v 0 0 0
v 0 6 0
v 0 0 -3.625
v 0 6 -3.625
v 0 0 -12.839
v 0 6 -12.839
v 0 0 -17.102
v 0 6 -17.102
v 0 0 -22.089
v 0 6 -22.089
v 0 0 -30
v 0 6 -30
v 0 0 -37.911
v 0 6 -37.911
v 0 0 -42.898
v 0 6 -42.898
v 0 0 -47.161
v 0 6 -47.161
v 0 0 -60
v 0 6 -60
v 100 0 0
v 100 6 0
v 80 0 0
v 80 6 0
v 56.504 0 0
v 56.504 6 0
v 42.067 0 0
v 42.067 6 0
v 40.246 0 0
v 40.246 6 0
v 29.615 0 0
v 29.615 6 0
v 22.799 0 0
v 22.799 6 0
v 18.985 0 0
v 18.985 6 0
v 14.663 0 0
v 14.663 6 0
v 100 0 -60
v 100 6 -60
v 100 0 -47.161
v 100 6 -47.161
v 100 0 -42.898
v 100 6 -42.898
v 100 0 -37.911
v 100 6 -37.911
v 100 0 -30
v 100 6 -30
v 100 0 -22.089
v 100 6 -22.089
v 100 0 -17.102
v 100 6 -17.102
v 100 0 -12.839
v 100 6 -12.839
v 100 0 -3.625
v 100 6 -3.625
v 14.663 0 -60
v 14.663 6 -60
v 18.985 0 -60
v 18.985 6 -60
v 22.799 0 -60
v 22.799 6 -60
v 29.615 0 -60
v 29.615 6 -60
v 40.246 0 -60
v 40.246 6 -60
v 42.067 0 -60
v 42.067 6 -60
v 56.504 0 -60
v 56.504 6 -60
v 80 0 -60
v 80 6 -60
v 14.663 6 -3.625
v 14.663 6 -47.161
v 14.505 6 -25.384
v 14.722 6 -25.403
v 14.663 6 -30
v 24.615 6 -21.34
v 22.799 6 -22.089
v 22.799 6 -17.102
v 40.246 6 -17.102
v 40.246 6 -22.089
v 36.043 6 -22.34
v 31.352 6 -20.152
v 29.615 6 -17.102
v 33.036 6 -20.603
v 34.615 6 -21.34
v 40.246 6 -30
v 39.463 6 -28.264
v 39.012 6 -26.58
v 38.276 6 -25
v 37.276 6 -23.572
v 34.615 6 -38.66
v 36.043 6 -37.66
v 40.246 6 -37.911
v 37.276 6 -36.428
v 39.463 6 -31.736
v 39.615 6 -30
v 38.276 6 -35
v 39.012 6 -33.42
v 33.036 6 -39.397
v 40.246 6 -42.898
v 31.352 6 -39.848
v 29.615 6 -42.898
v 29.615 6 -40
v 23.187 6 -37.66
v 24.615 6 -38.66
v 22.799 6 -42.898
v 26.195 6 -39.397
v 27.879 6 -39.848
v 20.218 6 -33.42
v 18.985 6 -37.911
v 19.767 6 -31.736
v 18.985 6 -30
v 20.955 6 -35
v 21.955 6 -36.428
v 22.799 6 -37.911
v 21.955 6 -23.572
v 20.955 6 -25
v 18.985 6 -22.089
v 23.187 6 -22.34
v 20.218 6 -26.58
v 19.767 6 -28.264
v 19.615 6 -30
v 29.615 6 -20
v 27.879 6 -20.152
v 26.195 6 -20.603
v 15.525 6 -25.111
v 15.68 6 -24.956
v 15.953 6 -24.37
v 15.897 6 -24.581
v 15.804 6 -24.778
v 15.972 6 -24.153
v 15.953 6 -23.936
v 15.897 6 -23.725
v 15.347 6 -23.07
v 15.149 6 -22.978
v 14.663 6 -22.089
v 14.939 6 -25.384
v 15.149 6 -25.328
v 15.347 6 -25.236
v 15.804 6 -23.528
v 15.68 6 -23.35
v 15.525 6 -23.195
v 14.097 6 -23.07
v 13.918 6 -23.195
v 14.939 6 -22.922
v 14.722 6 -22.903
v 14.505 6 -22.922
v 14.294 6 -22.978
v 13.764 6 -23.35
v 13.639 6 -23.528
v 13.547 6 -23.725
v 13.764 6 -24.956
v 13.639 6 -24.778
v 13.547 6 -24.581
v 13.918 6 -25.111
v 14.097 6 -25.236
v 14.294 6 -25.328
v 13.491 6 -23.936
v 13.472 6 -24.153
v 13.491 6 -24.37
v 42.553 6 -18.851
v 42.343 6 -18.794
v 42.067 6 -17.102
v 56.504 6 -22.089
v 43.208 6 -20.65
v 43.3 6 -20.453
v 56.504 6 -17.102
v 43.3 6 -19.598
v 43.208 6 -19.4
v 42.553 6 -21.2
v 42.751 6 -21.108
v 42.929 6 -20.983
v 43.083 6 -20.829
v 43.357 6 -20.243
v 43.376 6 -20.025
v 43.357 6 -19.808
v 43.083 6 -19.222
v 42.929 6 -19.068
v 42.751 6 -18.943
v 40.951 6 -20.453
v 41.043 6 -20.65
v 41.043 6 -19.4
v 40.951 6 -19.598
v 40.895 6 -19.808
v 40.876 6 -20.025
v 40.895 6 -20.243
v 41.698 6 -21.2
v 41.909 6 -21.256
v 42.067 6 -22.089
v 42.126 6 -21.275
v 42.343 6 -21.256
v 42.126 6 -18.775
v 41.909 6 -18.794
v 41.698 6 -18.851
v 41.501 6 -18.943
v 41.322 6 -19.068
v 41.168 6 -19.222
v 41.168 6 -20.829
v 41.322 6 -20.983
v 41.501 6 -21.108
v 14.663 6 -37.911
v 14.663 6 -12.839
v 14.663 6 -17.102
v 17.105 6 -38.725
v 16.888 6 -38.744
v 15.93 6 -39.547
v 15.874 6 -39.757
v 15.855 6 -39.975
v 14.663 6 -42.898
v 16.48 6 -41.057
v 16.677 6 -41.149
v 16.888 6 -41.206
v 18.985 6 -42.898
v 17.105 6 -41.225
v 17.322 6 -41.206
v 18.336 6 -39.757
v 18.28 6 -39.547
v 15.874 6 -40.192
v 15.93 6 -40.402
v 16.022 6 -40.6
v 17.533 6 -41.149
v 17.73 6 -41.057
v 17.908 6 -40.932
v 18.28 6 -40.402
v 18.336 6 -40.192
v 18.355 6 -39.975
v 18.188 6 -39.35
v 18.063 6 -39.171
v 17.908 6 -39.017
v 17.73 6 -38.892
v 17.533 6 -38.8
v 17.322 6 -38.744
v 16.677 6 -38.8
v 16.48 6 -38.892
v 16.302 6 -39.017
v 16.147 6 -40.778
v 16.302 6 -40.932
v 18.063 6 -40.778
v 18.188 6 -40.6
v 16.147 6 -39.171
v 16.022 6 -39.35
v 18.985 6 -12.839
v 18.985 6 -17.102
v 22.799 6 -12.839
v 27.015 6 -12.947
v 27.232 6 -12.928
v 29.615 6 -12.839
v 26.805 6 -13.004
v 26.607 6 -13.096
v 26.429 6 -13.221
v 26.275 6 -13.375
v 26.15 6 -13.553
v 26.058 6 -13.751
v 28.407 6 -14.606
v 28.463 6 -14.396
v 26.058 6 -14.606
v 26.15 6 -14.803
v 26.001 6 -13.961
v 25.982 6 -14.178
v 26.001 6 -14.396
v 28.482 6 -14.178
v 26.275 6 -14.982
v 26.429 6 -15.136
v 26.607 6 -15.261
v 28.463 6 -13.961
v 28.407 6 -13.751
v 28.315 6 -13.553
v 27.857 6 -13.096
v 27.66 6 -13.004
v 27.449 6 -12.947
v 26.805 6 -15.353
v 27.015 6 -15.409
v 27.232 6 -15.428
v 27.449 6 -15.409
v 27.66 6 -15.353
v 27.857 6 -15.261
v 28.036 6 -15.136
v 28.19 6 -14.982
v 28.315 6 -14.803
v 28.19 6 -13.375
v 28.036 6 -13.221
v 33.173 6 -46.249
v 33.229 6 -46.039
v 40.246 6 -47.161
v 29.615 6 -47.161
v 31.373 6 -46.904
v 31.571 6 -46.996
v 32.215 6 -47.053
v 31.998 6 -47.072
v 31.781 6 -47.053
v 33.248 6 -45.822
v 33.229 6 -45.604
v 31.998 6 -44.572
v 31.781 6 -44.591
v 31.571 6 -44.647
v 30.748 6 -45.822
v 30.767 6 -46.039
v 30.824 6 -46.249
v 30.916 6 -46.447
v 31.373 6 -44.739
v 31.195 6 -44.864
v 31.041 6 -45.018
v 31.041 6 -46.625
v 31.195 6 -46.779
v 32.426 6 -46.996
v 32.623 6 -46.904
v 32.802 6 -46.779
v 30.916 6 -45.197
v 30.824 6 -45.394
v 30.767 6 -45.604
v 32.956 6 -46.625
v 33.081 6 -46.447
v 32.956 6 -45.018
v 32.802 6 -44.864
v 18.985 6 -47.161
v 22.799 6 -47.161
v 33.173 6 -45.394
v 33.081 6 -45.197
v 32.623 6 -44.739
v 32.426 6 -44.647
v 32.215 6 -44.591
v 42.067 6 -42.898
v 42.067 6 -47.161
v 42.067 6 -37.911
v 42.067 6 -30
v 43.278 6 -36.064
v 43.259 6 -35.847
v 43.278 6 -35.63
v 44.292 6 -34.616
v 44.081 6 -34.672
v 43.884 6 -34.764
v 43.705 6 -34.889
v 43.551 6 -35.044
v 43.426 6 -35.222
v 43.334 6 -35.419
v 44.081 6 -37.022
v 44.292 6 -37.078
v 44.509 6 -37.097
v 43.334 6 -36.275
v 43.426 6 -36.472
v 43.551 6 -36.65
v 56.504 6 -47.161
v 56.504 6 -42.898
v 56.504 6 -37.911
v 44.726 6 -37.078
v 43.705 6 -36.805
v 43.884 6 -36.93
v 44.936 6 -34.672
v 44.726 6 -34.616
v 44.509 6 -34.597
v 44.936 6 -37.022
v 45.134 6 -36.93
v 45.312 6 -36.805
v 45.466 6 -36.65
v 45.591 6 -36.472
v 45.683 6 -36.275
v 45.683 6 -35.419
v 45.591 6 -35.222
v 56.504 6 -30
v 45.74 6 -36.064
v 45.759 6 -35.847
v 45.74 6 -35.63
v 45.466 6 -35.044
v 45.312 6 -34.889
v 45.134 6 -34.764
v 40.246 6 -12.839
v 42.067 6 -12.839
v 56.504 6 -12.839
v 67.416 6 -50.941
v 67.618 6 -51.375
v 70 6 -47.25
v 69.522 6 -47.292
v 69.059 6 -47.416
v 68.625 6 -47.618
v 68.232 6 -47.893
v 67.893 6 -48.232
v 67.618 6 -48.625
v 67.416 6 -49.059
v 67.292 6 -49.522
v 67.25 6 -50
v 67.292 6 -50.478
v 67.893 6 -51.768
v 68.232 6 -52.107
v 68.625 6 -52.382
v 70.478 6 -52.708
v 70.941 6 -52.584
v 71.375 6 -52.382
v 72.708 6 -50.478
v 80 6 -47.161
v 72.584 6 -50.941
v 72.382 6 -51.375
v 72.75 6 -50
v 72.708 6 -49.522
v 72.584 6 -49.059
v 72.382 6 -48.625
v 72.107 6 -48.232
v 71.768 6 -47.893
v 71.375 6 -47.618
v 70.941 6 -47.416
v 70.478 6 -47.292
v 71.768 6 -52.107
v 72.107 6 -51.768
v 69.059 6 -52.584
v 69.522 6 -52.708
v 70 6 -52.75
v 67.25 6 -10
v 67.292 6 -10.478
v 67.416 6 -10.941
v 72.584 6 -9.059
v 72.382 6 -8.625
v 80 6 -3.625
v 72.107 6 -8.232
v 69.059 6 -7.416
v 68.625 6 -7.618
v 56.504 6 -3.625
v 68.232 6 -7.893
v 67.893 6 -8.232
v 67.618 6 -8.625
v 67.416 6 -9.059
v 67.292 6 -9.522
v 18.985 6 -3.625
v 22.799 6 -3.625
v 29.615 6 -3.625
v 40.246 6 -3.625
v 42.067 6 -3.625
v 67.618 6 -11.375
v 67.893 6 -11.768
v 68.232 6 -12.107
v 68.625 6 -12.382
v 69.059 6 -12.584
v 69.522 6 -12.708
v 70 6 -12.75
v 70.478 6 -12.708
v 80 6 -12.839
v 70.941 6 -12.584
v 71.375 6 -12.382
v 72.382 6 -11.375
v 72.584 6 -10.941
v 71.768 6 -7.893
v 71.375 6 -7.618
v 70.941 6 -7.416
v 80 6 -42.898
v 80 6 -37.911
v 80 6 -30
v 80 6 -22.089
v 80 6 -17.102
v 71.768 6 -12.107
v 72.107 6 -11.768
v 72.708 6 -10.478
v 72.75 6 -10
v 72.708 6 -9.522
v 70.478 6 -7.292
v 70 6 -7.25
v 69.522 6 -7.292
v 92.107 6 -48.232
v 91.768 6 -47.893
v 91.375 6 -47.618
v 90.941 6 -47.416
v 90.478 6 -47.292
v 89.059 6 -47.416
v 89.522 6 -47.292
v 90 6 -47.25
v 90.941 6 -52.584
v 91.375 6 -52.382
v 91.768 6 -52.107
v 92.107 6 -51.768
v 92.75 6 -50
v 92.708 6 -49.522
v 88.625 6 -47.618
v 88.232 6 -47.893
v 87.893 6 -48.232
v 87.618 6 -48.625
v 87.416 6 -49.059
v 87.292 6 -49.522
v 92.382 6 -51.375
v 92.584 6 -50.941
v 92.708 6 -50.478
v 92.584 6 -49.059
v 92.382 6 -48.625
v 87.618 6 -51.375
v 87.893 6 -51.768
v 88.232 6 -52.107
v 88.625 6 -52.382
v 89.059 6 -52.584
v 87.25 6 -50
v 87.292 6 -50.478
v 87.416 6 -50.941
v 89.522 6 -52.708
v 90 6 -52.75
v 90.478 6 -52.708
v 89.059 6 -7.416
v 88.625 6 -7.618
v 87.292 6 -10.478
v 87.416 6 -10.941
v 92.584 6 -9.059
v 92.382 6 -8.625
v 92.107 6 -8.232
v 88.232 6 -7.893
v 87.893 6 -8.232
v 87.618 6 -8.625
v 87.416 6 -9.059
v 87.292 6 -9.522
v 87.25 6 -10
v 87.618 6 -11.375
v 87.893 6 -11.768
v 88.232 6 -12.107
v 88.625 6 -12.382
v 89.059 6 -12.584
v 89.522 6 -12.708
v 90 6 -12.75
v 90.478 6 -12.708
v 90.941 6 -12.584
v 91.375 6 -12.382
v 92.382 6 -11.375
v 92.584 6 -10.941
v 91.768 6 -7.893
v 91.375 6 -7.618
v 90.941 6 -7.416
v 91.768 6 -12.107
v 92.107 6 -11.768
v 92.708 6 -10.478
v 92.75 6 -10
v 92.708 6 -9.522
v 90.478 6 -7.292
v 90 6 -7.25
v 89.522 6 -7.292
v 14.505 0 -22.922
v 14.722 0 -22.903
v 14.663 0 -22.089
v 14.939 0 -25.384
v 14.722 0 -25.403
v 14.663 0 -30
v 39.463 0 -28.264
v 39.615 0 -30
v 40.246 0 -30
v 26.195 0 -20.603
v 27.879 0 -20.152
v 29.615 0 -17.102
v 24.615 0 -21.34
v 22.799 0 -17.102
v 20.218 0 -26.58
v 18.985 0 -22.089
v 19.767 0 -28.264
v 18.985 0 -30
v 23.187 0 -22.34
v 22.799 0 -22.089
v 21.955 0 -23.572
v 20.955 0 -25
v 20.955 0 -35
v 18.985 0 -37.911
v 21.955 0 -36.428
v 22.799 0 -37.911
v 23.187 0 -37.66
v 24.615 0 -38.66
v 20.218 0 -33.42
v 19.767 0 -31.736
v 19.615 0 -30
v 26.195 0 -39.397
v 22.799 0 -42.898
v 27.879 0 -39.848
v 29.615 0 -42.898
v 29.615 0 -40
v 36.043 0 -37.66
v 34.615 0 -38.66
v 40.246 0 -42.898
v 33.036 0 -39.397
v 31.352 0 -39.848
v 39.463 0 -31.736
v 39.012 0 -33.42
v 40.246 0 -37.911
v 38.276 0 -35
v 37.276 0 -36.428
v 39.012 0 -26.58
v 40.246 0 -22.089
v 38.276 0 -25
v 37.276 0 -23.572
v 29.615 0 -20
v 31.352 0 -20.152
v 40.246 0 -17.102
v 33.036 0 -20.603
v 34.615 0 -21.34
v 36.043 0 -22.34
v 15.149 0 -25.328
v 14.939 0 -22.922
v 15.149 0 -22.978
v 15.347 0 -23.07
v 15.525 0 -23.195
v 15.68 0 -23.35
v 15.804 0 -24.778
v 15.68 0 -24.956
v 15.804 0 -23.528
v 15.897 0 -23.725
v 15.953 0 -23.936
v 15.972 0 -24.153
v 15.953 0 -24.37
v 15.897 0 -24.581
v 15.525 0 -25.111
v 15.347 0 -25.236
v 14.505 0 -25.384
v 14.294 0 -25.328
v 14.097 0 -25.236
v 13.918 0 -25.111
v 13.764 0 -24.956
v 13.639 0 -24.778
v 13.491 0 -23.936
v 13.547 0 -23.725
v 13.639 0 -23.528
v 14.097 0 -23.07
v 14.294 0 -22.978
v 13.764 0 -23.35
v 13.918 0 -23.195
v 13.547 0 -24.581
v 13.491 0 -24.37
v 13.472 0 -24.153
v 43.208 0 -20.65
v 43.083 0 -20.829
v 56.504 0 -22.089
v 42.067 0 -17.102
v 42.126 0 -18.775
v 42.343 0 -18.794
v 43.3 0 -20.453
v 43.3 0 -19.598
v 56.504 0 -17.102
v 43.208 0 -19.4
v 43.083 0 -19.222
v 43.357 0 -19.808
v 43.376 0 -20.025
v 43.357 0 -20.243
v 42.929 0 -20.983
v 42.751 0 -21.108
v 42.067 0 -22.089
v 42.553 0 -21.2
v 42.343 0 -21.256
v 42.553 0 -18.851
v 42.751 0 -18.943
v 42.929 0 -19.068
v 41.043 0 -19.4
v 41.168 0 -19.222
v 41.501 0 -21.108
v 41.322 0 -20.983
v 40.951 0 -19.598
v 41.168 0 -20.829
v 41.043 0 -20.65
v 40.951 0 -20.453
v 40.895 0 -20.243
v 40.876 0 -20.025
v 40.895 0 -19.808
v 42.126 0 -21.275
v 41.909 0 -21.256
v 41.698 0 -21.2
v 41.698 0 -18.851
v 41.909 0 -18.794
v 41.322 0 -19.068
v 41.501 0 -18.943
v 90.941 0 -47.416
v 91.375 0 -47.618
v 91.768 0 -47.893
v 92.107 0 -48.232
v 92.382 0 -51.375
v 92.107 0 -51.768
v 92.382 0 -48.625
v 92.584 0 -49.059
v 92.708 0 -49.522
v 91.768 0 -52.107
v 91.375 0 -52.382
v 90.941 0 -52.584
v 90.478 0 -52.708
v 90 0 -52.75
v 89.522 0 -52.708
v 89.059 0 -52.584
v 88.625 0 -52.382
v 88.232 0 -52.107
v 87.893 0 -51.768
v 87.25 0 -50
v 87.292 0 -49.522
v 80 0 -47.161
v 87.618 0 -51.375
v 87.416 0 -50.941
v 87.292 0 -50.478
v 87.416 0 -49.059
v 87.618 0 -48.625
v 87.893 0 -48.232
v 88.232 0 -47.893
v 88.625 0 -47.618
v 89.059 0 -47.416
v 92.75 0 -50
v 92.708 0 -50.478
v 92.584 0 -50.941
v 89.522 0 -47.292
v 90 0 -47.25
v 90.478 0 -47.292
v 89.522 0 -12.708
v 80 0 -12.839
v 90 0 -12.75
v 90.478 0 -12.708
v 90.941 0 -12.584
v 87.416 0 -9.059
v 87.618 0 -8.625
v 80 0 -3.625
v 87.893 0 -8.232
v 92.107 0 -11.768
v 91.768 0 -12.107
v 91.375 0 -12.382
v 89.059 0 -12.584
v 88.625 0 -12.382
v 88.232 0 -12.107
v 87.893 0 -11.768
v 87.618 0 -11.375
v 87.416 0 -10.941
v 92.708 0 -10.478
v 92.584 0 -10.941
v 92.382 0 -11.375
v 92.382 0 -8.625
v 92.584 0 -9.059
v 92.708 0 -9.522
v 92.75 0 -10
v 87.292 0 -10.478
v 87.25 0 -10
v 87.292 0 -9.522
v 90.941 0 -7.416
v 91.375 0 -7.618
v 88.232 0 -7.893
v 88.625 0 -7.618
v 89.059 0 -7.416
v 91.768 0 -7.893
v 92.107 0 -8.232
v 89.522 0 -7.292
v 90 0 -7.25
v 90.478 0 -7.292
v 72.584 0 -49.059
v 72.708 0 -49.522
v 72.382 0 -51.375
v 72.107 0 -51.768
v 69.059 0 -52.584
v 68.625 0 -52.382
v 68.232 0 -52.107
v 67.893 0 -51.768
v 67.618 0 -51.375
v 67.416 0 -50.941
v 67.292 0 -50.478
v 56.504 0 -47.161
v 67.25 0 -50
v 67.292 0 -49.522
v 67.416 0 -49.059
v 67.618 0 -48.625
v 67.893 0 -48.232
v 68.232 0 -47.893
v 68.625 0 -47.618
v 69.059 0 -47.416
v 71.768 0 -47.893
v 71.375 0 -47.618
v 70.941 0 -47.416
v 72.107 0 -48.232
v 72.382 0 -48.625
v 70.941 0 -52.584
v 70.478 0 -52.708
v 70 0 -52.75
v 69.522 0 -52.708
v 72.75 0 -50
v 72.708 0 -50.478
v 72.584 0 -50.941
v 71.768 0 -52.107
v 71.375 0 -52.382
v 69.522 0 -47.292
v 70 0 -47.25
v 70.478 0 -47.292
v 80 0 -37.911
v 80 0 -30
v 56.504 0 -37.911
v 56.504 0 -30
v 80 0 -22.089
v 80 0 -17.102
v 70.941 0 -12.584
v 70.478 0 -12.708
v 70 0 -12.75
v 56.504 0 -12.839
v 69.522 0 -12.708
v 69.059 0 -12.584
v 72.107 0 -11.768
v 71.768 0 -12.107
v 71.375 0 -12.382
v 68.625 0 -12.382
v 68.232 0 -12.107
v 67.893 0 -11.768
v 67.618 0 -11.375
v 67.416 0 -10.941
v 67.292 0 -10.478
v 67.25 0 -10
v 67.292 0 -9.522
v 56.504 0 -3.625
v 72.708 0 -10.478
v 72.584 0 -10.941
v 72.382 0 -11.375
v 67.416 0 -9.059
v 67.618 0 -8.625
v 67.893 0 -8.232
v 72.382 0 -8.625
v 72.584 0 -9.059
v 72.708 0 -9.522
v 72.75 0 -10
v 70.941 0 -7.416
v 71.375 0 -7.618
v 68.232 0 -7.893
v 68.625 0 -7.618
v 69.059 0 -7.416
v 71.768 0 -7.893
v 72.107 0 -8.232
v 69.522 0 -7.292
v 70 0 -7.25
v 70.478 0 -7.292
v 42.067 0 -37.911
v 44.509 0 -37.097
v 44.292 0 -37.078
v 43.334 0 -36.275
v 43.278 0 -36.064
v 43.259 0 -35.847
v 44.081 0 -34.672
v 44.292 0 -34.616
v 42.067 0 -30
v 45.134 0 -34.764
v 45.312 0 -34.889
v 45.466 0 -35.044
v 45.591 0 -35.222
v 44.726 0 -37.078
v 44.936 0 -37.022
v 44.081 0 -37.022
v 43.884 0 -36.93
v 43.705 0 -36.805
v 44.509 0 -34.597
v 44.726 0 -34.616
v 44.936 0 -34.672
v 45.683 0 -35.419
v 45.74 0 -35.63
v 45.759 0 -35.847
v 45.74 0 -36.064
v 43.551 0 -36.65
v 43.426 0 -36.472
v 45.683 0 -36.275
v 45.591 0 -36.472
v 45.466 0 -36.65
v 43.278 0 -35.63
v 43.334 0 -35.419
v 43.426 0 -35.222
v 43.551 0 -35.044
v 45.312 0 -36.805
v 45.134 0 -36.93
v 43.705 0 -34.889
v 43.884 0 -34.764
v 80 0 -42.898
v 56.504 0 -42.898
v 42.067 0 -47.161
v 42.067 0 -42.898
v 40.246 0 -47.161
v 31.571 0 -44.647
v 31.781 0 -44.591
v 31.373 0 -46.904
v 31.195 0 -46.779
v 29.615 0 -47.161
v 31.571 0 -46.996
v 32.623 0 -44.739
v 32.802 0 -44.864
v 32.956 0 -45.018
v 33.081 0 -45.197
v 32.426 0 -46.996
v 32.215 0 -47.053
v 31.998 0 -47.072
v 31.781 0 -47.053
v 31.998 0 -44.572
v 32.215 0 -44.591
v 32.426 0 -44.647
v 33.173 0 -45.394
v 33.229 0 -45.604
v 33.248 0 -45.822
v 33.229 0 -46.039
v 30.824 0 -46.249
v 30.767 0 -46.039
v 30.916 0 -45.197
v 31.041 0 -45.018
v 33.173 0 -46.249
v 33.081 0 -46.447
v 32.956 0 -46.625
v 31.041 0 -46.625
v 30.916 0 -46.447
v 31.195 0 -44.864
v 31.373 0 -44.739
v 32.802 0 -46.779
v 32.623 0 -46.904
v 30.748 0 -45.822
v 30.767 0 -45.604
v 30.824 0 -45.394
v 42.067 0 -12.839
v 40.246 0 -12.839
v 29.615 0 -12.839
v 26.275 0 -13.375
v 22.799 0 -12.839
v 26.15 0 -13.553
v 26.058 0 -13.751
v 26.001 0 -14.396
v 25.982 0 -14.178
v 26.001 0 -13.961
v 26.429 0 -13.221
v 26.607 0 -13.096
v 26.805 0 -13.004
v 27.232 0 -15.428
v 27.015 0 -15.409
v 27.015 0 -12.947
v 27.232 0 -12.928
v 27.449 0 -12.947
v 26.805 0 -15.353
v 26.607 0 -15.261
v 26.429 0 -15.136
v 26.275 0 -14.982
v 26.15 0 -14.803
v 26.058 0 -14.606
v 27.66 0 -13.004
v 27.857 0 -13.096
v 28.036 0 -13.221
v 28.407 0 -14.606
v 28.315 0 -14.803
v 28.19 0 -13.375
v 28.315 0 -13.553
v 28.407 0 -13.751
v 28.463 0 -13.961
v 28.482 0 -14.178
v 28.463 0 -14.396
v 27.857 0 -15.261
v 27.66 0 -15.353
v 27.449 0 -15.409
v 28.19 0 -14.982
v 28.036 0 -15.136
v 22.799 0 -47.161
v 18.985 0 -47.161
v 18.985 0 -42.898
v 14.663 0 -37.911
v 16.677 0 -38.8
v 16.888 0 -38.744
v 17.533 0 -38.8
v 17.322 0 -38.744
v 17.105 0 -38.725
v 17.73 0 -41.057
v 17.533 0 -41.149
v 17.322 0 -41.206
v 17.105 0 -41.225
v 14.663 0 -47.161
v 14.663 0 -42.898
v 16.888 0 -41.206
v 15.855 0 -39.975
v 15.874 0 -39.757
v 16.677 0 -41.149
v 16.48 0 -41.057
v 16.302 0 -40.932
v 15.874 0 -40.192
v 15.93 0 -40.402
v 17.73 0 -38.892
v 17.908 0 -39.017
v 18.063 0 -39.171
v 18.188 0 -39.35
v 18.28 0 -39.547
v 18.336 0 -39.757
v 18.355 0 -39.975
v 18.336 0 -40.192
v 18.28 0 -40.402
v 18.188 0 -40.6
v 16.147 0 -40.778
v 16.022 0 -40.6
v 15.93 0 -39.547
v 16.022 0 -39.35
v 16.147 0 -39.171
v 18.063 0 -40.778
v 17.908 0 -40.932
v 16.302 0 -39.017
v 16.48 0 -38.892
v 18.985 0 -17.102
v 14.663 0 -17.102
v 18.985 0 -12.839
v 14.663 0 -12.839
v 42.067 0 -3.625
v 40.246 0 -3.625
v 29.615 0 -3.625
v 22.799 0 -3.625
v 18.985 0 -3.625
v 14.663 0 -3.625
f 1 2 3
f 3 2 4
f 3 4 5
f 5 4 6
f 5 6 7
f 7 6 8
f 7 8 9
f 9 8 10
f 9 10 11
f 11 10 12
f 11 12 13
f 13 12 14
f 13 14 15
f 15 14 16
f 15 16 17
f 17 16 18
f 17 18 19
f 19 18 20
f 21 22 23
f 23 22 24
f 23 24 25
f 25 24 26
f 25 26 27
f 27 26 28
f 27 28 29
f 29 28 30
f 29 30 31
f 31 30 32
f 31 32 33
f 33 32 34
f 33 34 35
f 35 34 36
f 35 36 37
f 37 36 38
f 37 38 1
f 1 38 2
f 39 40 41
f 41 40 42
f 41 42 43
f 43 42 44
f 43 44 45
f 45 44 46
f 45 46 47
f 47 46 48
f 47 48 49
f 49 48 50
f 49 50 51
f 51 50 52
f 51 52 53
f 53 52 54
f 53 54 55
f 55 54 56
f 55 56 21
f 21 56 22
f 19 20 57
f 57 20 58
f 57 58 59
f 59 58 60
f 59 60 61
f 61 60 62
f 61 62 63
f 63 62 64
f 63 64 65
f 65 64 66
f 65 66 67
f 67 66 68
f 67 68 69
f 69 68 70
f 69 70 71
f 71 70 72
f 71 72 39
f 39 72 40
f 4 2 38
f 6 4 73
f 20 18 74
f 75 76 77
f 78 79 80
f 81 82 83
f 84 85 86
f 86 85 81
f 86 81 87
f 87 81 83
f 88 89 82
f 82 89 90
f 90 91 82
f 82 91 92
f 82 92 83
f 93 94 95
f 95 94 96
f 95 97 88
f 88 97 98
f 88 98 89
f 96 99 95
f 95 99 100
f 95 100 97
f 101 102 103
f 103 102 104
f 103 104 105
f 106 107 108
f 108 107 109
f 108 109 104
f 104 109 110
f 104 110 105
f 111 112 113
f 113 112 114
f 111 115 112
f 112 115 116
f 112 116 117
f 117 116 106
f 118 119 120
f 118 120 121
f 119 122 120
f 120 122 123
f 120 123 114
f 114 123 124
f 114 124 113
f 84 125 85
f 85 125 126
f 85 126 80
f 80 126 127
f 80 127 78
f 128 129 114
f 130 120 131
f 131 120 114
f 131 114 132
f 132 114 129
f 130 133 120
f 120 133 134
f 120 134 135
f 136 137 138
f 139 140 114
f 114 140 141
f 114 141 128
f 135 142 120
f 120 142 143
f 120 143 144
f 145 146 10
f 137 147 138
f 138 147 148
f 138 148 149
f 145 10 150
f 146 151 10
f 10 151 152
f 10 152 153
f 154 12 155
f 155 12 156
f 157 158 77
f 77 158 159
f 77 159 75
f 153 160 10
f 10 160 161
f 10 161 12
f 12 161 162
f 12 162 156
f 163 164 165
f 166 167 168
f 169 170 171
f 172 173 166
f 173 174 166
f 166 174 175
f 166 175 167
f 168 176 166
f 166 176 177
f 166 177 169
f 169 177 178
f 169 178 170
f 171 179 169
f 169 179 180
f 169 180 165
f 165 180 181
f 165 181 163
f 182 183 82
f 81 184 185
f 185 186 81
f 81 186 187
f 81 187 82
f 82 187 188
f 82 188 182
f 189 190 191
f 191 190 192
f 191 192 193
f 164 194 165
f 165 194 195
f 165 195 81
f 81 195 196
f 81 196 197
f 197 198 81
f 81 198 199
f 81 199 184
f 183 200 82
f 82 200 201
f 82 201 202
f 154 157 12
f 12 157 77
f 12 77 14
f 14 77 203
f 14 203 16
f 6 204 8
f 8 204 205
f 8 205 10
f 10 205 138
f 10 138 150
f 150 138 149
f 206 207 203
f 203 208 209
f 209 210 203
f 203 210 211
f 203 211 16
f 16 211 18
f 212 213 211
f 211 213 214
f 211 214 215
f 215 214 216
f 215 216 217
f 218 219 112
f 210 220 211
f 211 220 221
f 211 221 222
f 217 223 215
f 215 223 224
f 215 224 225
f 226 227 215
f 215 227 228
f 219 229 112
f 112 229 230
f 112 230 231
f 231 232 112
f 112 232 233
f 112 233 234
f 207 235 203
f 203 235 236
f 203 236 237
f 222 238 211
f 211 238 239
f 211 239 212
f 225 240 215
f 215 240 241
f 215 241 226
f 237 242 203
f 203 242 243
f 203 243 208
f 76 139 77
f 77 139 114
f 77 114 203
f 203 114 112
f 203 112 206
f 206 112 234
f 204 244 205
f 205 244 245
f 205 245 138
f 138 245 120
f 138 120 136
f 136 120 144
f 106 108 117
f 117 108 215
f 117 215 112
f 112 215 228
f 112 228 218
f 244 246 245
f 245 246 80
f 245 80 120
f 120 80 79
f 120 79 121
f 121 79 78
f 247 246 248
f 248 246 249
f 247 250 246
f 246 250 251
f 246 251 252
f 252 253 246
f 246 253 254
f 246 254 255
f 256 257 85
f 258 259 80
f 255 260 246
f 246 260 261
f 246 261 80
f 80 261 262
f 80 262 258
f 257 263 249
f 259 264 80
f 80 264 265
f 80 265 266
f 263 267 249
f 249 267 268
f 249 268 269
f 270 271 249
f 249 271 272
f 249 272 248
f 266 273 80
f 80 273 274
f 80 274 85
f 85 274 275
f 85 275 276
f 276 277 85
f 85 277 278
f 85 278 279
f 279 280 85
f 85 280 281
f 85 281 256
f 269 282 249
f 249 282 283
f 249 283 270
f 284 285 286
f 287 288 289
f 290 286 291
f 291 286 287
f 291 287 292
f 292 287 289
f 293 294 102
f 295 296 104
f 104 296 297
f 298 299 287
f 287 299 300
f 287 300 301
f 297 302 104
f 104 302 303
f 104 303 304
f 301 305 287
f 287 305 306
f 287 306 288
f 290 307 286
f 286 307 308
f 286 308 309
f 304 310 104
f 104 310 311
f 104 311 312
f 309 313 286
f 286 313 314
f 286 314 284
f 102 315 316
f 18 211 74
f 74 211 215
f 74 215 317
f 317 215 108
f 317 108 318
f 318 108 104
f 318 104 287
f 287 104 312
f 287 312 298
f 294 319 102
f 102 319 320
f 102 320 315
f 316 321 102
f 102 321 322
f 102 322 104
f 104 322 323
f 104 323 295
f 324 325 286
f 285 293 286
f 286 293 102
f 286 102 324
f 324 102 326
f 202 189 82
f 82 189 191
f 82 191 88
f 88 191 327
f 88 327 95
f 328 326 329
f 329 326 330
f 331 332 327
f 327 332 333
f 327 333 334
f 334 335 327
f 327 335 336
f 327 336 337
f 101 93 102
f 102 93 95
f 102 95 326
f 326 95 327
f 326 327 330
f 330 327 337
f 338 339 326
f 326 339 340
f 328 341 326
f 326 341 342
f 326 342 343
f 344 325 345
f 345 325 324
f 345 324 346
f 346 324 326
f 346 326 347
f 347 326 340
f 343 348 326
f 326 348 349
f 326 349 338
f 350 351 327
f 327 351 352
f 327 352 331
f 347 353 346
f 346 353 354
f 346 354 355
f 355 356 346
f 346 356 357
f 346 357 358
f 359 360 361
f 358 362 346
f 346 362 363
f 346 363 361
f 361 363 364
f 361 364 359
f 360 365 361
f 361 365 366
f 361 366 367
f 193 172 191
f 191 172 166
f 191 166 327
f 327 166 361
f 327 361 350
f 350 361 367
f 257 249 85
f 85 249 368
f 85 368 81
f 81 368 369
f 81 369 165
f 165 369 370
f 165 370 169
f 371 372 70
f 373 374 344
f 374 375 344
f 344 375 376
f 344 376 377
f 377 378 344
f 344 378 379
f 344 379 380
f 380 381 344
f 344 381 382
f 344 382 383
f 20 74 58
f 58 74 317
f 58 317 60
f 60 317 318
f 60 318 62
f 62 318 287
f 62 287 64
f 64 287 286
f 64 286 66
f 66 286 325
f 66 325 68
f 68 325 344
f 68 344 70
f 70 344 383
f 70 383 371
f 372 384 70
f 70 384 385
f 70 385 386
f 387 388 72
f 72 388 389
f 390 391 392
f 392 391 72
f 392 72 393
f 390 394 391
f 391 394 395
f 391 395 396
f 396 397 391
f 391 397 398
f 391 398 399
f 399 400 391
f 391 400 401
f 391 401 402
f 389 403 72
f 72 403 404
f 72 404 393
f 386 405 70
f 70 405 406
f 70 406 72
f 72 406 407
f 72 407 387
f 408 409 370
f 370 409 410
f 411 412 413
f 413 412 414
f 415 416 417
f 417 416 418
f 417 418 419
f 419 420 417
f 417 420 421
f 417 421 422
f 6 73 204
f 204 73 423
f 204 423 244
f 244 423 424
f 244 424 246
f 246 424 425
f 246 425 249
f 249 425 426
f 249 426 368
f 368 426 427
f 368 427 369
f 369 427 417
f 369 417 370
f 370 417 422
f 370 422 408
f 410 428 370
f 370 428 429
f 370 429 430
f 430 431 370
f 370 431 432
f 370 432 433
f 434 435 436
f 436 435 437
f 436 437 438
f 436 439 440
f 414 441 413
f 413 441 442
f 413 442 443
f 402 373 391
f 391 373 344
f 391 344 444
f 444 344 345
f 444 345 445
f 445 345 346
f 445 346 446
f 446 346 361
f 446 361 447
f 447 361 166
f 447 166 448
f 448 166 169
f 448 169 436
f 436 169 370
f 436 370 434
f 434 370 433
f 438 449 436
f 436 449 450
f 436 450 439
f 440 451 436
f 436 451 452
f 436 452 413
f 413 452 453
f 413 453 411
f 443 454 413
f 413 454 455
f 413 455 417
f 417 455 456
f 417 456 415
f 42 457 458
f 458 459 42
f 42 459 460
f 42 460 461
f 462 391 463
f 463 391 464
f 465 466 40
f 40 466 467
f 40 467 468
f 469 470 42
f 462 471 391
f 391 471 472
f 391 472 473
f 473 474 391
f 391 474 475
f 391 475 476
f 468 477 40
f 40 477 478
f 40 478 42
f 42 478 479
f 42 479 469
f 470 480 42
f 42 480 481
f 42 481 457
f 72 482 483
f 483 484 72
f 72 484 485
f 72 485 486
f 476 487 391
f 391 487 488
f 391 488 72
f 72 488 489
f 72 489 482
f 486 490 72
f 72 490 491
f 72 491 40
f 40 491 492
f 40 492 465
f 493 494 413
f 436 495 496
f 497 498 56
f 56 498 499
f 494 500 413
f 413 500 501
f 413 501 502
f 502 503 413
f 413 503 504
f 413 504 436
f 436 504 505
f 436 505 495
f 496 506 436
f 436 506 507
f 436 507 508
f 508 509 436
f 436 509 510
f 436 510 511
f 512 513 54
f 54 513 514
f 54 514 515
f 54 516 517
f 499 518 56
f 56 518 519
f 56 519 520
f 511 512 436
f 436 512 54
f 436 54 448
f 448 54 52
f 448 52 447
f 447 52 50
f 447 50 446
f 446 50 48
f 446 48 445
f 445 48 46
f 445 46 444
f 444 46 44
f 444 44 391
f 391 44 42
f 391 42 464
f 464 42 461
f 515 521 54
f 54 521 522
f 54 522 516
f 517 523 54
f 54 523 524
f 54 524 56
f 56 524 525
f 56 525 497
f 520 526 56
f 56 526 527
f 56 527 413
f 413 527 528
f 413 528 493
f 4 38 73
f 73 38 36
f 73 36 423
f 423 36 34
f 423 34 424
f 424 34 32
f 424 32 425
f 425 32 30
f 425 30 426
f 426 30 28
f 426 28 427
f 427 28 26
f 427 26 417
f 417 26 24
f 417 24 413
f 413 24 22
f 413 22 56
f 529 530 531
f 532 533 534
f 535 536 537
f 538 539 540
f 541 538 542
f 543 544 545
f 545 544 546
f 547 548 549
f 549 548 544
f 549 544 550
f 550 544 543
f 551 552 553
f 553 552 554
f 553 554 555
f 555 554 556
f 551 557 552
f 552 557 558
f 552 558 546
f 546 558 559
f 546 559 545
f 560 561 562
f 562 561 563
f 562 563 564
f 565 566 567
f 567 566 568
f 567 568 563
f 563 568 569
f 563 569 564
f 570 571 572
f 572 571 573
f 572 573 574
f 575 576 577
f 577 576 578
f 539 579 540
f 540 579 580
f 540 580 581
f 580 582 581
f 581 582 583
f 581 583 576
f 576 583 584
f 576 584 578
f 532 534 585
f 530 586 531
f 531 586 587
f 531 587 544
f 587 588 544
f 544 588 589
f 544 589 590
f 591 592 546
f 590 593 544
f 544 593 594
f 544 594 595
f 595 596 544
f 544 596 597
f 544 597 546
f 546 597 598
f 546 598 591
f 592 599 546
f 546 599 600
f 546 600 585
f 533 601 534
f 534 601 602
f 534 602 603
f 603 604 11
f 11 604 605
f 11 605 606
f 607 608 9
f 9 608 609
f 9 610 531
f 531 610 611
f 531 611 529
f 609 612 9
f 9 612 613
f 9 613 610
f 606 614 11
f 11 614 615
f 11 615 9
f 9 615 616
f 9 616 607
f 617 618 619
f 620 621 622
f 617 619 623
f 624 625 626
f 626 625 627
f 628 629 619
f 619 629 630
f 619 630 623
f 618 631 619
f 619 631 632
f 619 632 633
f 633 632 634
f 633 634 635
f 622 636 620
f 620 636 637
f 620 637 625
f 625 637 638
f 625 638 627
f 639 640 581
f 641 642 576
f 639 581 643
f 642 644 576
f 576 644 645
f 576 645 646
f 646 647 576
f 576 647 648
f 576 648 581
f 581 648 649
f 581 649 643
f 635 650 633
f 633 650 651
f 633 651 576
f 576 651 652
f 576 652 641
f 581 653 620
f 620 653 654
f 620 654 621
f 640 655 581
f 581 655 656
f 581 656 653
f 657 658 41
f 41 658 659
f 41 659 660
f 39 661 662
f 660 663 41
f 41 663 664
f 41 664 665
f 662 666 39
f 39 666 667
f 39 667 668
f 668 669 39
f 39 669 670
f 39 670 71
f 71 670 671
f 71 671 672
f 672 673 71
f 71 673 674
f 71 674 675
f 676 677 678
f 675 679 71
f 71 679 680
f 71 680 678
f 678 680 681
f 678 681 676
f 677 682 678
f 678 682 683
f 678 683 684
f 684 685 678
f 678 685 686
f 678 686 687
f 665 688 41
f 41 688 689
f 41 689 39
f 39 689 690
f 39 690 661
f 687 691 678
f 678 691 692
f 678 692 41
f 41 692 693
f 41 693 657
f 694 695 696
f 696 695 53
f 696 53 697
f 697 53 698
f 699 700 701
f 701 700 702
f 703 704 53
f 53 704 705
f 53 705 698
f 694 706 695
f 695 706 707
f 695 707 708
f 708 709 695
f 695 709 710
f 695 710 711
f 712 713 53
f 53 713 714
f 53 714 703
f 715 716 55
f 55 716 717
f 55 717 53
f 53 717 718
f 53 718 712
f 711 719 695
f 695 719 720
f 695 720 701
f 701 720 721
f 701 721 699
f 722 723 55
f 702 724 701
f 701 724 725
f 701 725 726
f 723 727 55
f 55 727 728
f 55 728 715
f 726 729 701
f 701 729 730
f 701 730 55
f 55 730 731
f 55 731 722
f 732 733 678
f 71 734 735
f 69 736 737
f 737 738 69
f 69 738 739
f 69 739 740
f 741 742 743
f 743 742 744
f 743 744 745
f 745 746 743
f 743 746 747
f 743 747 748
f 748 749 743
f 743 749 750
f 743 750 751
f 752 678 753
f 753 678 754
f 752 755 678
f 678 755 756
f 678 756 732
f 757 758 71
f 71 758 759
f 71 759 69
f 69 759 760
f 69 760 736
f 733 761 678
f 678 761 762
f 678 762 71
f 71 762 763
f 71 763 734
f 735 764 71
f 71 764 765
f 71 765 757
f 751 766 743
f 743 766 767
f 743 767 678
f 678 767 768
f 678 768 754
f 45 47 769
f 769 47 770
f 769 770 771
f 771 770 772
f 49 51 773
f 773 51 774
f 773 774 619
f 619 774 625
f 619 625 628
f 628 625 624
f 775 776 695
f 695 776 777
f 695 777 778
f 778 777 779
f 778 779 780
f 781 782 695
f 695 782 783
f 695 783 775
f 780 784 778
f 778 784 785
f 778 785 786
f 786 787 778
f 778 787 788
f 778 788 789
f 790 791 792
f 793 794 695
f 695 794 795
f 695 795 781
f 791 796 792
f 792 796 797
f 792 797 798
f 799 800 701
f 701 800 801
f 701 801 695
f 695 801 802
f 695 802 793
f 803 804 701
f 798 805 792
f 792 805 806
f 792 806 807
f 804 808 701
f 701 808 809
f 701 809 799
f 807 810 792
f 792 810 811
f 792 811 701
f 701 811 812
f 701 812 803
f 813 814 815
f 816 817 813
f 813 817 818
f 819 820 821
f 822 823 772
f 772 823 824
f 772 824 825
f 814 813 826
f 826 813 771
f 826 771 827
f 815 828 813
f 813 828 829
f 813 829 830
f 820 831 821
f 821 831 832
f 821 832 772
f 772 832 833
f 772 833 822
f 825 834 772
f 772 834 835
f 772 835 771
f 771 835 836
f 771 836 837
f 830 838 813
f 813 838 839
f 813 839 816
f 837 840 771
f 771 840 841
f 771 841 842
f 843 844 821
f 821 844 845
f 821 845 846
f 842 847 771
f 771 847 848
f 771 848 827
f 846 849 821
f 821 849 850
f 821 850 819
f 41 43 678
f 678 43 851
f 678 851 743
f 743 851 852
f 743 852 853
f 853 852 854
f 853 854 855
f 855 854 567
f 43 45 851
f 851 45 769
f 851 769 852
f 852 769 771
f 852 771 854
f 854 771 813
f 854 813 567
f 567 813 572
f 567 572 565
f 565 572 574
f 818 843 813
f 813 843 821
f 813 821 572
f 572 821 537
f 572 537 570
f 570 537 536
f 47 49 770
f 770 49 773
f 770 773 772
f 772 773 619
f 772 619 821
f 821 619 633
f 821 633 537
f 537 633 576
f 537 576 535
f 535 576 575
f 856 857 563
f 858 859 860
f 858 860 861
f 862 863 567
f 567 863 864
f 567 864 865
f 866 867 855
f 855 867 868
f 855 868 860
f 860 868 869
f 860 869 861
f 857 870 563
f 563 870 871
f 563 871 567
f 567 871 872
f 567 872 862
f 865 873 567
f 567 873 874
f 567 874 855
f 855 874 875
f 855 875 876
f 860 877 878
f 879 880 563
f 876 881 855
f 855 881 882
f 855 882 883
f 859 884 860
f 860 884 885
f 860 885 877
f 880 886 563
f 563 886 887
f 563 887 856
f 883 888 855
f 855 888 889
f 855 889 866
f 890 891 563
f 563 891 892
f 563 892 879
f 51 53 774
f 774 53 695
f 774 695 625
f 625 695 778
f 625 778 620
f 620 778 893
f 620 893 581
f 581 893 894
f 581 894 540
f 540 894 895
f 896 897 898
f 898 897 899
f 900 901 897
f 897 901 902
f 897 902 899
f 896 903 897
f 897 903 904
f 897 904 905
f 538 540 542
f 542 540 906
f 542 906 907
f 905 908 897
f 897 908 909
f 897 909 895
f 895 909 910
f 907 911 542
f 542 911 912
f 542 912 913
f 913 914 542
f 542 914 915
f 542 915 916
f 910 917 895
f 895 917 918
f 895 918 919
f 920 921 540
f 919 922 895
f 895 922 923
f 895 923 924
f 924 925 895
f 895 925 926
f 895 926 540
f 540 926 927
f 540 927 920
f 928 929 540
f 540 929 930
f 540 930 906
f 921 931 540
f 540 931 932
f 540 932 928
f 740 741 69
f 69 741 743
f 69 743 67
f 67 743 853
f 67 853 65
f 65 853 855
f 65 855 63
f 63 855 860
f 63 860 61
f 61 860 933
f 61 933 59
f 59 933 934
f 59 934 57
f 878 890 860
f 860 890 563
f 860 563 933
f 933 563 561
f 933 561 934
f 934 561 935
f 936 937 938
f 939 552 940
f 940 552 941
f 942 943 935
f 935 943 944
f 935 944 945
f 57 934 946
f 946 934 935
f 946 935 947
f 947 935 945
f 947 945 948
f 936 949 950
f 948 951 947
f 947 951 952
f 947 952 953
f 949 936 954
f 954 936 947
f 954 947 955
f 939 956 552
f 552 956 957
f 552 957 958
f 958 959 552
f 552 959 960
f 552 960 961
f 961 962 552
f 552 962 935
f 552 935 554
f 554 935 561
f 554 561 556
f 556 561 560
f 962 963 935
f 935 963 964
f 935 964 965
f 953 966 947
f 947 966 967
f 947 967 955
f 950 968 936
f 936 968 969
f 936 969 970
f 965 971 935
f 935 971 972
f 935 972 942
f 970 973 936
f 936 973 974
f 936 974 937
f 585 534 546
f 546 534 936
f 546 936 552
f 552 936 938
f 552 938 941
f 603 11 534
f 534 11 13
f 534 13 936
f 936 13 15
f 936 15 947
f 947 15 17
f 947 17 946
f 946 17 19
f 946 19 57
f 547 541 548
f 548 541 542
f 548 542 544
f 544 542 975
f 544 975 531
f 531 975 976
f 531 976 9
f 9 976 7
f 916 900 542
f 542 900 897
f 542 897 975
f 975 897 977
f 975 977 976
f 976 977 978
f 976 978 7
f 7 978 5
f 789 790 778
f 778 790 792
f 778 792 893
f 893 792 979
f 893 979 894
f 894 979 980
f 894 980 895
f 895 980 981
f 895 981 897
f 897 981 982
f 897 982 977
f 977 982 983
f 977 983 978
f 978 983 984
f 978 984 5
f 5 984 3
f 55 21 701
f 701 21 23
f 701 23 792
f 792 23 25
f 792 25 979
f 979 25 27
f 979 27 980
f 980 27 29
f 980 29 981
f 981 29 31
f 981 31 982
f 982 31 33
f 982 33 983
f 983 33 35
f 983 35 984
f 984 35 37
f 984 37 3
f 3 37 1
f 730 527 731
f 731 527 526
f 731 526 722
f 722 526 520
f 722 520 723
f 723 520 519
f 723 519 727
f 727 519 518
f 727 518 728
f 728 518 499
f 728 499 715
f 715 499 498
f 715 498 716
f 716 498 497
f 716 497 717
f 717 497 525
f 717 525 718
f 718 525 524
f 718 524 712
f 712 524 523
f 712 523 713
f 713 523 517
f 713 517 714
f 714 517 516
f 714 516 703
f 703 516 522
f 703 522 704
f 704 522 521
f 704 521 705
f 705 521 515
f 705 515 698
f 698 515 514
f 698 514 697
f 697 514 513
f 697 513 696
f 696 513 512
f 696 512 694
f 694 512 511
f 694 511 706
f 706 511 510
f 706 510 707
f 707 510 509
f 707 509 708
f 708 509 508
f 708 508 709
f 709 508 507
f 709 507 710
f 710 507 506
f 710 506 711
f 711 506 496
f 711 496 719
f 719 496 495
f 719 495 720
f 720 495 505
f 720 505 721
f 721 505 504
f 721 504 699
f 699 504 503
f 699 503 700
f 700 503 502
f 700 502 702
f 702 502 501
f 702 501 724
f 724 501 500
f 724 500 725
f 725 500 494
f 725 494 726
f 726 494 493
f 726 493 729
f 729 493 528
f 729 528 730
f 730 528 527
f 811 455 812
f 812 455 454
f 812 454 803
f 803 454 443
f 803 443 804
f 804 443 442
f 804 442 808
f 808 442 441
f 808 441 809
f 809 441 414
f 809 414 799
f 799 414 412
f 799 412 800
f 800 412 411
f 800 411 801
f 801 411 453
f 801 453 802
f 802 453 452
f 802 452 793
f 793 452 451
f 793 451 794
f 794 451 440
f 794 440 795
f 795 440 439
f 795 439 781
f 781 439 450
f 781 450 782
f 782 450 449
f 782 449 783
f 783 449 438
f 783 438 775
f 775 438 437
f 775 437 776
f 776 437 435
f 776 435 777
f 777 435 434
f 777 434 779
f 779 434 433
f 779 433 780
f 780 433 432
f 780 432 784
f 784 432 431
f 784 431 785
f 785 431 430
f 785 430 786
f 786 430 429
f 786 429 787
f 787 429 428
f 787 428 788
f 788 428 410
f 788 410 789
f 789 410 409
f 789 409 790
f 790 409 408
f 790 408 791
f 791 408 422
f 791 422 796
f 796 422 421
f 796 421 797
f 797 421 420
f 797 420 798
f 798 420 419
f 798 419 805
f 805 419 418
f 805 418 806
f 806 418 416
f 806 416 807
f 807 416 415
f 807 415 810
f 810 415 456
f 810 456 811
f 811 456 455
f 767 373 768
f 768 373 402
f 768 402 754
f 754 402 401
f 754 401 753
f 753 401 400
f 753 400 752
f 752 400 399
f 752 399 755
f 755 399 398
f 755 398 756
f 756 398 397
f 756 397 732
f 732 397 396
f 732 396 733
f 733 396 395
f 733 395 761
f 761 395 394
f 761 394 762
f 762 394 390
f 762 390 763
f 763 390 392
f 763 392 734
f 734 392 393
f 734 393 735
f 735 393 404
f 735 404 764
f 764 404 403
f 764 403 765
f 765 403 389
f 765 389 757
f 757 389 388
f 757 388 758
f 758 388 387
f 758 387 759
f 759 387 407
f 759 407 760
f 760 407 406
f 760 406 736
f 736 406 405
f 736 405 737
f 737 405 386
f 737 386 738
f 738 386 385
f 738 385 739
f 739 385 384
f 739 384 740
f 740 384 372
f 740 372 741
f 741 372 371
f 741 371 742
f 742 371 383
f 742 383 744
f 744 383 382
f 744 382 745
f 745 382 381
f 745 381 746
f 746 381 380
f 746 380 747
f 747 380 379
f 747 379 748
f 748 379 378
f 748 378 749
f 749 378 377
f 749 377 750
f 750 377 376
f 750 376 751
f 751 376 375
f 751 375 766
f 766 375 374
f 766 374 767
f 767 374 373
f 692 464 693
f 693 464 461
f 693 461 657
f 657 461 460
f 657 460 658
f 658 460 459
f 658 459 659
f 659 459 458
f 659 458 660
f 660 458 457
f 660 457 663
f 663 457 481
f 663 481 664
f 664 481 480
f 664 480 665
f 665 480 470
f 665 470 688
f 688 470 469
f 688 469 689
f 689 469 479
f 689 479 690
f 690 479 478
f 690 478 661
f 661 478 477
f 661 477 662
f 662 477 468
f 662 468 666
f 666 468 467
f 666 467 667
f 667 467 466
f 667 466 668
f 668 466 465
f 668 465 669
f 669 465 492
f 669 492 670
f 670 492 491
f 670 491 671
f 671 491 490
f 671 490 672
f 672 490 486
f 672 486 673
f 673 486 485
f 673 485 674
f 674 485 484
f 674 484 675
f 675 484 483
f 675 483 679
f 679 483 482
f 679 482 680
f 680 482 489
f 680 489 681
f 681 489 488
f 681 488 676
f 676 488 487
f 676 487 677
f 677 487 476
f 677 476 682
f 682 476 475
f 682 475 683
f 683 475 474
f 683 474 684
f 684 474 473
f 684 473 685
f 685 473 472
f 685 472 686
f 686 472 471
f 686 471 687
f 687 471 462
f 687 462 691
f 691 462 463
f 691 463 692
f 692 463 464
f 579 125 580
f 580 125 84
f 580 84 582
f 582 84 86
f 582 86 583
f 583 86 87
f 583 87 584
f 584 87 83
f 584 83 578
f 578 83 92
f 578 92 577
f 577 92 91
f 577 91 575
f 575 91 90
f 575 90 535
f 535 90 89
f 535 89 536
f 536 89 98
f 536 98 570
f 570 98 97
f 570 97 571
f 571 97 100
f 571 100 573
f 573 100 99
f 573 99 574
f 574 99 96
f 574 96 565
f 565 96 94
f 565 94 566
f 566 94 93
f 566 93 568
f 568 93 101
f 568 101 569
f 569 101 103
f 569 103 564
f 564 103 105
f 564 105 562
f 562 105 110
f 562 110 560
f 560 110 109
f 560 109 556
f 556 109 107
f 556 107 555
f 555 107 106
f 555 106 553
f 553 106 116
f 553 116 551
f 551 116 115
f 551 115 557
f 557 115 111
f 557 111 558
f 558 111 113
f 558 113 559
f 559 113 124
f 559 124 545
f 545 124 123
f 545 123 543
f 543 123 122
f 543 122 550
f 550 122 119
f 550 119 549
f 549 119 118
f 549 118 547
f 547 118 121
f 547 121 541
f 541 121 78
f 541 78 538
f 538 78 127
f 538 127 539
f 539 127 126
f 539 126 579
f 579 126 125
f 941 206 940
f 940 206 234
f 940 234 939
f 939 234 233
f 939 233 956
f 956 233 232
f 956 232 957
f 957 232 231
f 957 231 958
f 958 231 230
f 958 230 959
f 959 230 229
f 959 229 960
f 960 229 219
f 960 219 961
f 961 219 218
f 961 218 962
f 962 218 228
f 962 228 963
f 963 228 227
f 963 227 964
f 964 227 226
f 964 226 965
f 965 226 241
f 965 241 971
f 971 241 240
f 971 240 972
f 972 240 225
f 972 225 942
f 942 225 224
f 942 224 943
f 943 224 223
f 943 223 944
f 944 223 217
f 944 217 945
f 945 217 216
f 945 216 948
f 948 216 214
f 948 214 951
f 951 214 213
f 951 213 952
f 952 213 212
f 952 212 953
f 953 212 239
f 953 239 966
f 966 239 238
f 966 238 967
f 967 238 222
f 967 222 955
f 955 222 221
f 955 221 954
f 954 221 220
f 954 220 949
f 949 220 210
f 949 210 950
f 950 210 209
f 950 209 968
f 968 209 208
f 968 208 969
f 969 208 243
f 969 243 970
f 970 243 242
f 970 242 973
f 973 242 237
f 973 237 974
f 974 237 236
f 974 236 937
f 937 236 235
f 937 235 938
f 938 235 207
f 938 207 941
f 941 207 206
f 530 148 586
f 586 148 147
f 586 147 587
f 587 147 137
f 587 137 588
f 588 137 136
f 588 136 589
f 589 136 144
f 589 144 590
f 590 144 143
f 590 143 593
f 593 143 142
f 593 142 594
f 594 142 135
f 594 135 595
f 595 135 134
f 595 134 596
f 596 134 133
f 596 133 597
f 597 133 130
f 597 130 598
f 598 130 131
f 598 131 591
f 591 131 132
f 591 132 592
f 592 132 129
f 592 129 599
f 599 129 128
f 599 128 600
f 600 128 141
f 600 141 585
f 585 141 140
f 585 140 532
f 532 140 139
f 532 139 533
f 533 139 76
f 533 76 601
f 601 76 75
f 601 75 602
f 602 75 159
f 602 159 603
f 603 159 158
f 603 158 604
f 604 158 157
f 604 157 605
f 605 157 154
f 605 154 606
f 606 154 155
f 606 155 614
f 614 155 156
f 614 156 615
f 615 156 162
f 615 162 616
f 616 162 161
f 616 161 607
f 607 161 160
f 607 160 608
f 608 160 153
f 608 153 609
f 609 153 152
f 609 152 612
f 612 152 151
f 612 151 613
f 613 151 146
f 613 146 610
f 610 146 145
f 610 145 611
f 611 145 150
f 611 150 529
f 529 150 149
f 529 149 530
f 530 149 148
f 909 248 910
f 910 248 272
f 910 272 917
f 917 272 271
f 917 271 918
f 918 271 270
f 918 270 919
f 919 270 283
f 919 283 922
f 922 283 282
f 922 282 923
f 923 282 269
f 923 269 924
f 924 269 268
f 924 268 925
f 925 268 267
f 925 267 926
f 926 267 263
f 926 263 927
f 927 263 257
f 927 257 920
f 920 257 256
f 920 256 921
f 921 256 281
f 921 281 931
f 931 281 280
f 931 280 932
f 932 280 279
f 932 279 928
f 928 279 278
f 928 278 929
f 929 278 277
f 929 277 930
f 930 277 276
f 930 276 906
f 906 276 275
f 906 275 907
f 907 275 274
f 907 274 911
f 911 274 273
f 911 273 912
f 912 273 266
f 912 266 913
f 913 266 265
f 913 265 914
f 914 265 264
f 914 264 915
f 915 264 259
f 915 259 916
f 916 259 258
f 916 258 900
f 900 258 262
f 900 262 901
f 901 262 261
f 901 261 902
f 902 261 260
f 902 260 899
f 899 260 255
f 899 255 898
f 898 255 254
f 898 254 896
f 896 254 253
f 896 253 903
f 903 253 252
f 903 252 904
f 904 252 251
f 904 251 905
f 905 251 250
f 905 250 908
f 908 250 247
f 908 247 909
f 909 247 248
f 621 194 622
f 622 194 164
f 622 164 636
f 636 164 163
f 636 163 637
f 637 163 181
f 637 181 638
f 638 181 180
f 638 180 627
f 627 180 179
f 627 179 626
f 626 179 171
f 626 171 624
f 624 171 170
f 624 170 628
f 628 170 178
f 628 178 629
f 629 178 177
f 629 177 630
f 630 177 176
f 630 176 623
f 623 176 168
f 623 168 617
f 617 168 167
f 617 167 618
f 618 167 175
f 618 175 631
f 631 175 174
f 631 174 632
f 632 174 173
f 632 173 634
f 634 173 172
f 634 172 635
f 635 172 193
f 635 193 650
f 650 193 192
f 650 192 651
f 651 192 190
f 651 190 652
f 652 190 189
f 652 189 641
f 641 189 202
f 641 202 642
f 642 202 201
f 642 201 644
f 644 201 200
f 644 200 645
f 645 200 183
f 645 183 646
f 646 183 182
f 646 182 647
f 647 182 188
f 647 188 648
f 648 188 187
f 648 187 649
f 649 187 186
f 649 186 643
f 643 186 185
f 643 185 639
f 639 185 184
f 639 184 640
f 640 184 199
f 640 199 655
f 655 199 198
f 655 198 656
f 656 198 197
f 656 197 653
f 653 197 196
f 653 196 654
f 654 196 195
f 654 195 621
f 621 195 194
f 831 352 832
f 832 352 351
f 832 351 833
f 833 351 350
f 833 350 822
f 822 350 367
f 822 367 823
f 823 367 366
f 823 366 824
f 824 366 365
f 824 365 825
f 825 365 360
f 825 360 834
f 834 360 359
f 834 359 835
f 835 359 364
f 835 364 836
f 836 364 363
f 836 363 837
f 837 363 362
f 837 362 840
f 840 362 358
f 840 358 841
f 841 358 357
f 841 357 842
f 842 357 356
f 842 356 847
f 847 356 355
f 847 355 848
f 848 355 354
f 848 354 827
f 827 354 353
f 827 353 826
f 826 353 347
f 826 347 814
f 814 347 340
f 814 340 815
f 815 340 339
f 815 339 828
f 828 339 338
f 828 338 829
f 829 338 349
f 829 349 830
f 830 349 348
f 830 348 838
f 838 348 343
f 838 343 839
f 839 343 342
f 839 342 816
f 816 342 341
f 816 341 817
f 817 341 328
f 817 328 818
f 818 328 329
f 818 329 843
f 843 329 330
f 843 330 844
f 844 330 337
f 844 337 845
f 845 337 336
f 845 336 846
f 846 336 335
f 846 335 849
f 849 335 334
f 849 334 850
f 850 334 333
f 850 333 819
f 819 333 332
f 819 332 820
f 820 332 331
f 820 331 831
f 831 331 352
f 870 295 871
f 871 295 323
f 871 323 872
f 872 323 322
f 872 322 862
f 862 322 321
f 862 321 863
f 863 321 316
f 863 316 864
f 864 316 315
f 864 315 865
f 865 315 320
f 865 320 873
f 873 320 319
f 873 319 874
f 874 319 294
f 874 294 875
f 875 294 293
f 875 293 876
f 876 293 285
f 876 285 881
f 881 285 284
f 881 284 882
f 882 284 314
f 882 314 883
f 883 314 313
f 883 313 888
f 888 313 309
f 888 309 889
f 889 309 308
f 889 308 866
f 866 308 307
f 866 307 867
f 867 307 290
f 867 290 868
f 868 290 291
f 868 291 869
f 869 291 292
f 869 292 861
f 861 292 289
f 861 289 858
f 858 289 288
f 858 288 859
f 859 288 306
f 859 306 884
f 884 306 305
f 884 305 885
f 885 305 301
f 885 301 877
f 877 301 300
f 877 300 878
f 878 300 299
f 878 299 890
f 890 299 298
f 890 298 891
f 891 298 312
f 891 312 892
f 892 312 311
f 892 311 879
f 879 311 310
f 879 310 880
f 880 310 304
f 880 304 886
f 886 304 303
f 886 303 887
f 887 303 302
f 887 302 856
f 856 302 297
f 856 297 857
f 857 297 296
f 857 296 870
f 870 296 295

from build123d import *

# Parameters (mm, degrees)
SKETCH1_W           = 100
SKETCH1_H           = 60
BOSS_EXTRUDE1_DEPTH = 6
SKETCH2_R           = 10
SKETCH2_R_2         = 2.75
CUT_EXTRUDE1_DEPTH  = 6
SKETCH3_R           = 1.25
CUT_EXTRUDE2_DEPTH  = 7


with BuildPart() as part:
    # Sketch1 → Boss-Extrude1 (new body)
    with BuildSketch(Plane(origin=(0, 0, 0), x_dir=(1, 0, 0), z_dir=(0, 1, 0))):
        with Locations((50, 30)):
            Rectangle(SKETCH1_W, SKETCH1_H)
    extrude(amount=BOSS_EXTRUDE1_DEPTH)

    # Sketch2 → Cut-Extrude1 (cut)
    with BuildSketch(Plane(origin=(0, 6, 0), x_dir=(1, 0, 0), z_dir=(0, 1, 0))):
        with Locations((29.615341175, 30)):
            Circle(SKETCH2_R)
        with Locations((70, 50)):
            Circle(SKETCH2_R_2)
        with Locations((90, 50)):
            Circle(SKETCH2_R_2)
        with Locations((70, 10)):
            Circle(SKETCH2_R_2)
        with Locations((90, 10)):
            Circle(SKETCH2_R_2)
    extrude(amount=-CUT_EXTRUDE1_DEPTH, mode=Mode.SUBTRACT)

    # Sketch3 → Cut-Extrude2 (cut, through all)
    with BuildSketch(Plane(origin=(0, 6, 0), x_dir=(1, 0, 0), z_dir=(0, 1, 0))):
        with Locations((31.998383025, 45.821539481)):
            Circle(SKETCH3_R)
        with Locations((44.508717217, 35.846994961)):
            Circle(SKETCH3_R)
        with Locations((42.125675368, 20.02545548)):
            Circle(SKETCH3_R)
        with Locations((27.232299326, 14.178460519)):
            Circle(SKETCH3_R)
        with Locations((14.721965133, 24.153005039)):
            Circle(SKETCH3_R)
        with Locations((17.105006983, 39.97454452)):
            Circle(SKETCH3_R)
    extrude(amount=-CUT_EXTRUDE2_DEPTH, mode=Mode.SUBTRACT)


solid = part.part
